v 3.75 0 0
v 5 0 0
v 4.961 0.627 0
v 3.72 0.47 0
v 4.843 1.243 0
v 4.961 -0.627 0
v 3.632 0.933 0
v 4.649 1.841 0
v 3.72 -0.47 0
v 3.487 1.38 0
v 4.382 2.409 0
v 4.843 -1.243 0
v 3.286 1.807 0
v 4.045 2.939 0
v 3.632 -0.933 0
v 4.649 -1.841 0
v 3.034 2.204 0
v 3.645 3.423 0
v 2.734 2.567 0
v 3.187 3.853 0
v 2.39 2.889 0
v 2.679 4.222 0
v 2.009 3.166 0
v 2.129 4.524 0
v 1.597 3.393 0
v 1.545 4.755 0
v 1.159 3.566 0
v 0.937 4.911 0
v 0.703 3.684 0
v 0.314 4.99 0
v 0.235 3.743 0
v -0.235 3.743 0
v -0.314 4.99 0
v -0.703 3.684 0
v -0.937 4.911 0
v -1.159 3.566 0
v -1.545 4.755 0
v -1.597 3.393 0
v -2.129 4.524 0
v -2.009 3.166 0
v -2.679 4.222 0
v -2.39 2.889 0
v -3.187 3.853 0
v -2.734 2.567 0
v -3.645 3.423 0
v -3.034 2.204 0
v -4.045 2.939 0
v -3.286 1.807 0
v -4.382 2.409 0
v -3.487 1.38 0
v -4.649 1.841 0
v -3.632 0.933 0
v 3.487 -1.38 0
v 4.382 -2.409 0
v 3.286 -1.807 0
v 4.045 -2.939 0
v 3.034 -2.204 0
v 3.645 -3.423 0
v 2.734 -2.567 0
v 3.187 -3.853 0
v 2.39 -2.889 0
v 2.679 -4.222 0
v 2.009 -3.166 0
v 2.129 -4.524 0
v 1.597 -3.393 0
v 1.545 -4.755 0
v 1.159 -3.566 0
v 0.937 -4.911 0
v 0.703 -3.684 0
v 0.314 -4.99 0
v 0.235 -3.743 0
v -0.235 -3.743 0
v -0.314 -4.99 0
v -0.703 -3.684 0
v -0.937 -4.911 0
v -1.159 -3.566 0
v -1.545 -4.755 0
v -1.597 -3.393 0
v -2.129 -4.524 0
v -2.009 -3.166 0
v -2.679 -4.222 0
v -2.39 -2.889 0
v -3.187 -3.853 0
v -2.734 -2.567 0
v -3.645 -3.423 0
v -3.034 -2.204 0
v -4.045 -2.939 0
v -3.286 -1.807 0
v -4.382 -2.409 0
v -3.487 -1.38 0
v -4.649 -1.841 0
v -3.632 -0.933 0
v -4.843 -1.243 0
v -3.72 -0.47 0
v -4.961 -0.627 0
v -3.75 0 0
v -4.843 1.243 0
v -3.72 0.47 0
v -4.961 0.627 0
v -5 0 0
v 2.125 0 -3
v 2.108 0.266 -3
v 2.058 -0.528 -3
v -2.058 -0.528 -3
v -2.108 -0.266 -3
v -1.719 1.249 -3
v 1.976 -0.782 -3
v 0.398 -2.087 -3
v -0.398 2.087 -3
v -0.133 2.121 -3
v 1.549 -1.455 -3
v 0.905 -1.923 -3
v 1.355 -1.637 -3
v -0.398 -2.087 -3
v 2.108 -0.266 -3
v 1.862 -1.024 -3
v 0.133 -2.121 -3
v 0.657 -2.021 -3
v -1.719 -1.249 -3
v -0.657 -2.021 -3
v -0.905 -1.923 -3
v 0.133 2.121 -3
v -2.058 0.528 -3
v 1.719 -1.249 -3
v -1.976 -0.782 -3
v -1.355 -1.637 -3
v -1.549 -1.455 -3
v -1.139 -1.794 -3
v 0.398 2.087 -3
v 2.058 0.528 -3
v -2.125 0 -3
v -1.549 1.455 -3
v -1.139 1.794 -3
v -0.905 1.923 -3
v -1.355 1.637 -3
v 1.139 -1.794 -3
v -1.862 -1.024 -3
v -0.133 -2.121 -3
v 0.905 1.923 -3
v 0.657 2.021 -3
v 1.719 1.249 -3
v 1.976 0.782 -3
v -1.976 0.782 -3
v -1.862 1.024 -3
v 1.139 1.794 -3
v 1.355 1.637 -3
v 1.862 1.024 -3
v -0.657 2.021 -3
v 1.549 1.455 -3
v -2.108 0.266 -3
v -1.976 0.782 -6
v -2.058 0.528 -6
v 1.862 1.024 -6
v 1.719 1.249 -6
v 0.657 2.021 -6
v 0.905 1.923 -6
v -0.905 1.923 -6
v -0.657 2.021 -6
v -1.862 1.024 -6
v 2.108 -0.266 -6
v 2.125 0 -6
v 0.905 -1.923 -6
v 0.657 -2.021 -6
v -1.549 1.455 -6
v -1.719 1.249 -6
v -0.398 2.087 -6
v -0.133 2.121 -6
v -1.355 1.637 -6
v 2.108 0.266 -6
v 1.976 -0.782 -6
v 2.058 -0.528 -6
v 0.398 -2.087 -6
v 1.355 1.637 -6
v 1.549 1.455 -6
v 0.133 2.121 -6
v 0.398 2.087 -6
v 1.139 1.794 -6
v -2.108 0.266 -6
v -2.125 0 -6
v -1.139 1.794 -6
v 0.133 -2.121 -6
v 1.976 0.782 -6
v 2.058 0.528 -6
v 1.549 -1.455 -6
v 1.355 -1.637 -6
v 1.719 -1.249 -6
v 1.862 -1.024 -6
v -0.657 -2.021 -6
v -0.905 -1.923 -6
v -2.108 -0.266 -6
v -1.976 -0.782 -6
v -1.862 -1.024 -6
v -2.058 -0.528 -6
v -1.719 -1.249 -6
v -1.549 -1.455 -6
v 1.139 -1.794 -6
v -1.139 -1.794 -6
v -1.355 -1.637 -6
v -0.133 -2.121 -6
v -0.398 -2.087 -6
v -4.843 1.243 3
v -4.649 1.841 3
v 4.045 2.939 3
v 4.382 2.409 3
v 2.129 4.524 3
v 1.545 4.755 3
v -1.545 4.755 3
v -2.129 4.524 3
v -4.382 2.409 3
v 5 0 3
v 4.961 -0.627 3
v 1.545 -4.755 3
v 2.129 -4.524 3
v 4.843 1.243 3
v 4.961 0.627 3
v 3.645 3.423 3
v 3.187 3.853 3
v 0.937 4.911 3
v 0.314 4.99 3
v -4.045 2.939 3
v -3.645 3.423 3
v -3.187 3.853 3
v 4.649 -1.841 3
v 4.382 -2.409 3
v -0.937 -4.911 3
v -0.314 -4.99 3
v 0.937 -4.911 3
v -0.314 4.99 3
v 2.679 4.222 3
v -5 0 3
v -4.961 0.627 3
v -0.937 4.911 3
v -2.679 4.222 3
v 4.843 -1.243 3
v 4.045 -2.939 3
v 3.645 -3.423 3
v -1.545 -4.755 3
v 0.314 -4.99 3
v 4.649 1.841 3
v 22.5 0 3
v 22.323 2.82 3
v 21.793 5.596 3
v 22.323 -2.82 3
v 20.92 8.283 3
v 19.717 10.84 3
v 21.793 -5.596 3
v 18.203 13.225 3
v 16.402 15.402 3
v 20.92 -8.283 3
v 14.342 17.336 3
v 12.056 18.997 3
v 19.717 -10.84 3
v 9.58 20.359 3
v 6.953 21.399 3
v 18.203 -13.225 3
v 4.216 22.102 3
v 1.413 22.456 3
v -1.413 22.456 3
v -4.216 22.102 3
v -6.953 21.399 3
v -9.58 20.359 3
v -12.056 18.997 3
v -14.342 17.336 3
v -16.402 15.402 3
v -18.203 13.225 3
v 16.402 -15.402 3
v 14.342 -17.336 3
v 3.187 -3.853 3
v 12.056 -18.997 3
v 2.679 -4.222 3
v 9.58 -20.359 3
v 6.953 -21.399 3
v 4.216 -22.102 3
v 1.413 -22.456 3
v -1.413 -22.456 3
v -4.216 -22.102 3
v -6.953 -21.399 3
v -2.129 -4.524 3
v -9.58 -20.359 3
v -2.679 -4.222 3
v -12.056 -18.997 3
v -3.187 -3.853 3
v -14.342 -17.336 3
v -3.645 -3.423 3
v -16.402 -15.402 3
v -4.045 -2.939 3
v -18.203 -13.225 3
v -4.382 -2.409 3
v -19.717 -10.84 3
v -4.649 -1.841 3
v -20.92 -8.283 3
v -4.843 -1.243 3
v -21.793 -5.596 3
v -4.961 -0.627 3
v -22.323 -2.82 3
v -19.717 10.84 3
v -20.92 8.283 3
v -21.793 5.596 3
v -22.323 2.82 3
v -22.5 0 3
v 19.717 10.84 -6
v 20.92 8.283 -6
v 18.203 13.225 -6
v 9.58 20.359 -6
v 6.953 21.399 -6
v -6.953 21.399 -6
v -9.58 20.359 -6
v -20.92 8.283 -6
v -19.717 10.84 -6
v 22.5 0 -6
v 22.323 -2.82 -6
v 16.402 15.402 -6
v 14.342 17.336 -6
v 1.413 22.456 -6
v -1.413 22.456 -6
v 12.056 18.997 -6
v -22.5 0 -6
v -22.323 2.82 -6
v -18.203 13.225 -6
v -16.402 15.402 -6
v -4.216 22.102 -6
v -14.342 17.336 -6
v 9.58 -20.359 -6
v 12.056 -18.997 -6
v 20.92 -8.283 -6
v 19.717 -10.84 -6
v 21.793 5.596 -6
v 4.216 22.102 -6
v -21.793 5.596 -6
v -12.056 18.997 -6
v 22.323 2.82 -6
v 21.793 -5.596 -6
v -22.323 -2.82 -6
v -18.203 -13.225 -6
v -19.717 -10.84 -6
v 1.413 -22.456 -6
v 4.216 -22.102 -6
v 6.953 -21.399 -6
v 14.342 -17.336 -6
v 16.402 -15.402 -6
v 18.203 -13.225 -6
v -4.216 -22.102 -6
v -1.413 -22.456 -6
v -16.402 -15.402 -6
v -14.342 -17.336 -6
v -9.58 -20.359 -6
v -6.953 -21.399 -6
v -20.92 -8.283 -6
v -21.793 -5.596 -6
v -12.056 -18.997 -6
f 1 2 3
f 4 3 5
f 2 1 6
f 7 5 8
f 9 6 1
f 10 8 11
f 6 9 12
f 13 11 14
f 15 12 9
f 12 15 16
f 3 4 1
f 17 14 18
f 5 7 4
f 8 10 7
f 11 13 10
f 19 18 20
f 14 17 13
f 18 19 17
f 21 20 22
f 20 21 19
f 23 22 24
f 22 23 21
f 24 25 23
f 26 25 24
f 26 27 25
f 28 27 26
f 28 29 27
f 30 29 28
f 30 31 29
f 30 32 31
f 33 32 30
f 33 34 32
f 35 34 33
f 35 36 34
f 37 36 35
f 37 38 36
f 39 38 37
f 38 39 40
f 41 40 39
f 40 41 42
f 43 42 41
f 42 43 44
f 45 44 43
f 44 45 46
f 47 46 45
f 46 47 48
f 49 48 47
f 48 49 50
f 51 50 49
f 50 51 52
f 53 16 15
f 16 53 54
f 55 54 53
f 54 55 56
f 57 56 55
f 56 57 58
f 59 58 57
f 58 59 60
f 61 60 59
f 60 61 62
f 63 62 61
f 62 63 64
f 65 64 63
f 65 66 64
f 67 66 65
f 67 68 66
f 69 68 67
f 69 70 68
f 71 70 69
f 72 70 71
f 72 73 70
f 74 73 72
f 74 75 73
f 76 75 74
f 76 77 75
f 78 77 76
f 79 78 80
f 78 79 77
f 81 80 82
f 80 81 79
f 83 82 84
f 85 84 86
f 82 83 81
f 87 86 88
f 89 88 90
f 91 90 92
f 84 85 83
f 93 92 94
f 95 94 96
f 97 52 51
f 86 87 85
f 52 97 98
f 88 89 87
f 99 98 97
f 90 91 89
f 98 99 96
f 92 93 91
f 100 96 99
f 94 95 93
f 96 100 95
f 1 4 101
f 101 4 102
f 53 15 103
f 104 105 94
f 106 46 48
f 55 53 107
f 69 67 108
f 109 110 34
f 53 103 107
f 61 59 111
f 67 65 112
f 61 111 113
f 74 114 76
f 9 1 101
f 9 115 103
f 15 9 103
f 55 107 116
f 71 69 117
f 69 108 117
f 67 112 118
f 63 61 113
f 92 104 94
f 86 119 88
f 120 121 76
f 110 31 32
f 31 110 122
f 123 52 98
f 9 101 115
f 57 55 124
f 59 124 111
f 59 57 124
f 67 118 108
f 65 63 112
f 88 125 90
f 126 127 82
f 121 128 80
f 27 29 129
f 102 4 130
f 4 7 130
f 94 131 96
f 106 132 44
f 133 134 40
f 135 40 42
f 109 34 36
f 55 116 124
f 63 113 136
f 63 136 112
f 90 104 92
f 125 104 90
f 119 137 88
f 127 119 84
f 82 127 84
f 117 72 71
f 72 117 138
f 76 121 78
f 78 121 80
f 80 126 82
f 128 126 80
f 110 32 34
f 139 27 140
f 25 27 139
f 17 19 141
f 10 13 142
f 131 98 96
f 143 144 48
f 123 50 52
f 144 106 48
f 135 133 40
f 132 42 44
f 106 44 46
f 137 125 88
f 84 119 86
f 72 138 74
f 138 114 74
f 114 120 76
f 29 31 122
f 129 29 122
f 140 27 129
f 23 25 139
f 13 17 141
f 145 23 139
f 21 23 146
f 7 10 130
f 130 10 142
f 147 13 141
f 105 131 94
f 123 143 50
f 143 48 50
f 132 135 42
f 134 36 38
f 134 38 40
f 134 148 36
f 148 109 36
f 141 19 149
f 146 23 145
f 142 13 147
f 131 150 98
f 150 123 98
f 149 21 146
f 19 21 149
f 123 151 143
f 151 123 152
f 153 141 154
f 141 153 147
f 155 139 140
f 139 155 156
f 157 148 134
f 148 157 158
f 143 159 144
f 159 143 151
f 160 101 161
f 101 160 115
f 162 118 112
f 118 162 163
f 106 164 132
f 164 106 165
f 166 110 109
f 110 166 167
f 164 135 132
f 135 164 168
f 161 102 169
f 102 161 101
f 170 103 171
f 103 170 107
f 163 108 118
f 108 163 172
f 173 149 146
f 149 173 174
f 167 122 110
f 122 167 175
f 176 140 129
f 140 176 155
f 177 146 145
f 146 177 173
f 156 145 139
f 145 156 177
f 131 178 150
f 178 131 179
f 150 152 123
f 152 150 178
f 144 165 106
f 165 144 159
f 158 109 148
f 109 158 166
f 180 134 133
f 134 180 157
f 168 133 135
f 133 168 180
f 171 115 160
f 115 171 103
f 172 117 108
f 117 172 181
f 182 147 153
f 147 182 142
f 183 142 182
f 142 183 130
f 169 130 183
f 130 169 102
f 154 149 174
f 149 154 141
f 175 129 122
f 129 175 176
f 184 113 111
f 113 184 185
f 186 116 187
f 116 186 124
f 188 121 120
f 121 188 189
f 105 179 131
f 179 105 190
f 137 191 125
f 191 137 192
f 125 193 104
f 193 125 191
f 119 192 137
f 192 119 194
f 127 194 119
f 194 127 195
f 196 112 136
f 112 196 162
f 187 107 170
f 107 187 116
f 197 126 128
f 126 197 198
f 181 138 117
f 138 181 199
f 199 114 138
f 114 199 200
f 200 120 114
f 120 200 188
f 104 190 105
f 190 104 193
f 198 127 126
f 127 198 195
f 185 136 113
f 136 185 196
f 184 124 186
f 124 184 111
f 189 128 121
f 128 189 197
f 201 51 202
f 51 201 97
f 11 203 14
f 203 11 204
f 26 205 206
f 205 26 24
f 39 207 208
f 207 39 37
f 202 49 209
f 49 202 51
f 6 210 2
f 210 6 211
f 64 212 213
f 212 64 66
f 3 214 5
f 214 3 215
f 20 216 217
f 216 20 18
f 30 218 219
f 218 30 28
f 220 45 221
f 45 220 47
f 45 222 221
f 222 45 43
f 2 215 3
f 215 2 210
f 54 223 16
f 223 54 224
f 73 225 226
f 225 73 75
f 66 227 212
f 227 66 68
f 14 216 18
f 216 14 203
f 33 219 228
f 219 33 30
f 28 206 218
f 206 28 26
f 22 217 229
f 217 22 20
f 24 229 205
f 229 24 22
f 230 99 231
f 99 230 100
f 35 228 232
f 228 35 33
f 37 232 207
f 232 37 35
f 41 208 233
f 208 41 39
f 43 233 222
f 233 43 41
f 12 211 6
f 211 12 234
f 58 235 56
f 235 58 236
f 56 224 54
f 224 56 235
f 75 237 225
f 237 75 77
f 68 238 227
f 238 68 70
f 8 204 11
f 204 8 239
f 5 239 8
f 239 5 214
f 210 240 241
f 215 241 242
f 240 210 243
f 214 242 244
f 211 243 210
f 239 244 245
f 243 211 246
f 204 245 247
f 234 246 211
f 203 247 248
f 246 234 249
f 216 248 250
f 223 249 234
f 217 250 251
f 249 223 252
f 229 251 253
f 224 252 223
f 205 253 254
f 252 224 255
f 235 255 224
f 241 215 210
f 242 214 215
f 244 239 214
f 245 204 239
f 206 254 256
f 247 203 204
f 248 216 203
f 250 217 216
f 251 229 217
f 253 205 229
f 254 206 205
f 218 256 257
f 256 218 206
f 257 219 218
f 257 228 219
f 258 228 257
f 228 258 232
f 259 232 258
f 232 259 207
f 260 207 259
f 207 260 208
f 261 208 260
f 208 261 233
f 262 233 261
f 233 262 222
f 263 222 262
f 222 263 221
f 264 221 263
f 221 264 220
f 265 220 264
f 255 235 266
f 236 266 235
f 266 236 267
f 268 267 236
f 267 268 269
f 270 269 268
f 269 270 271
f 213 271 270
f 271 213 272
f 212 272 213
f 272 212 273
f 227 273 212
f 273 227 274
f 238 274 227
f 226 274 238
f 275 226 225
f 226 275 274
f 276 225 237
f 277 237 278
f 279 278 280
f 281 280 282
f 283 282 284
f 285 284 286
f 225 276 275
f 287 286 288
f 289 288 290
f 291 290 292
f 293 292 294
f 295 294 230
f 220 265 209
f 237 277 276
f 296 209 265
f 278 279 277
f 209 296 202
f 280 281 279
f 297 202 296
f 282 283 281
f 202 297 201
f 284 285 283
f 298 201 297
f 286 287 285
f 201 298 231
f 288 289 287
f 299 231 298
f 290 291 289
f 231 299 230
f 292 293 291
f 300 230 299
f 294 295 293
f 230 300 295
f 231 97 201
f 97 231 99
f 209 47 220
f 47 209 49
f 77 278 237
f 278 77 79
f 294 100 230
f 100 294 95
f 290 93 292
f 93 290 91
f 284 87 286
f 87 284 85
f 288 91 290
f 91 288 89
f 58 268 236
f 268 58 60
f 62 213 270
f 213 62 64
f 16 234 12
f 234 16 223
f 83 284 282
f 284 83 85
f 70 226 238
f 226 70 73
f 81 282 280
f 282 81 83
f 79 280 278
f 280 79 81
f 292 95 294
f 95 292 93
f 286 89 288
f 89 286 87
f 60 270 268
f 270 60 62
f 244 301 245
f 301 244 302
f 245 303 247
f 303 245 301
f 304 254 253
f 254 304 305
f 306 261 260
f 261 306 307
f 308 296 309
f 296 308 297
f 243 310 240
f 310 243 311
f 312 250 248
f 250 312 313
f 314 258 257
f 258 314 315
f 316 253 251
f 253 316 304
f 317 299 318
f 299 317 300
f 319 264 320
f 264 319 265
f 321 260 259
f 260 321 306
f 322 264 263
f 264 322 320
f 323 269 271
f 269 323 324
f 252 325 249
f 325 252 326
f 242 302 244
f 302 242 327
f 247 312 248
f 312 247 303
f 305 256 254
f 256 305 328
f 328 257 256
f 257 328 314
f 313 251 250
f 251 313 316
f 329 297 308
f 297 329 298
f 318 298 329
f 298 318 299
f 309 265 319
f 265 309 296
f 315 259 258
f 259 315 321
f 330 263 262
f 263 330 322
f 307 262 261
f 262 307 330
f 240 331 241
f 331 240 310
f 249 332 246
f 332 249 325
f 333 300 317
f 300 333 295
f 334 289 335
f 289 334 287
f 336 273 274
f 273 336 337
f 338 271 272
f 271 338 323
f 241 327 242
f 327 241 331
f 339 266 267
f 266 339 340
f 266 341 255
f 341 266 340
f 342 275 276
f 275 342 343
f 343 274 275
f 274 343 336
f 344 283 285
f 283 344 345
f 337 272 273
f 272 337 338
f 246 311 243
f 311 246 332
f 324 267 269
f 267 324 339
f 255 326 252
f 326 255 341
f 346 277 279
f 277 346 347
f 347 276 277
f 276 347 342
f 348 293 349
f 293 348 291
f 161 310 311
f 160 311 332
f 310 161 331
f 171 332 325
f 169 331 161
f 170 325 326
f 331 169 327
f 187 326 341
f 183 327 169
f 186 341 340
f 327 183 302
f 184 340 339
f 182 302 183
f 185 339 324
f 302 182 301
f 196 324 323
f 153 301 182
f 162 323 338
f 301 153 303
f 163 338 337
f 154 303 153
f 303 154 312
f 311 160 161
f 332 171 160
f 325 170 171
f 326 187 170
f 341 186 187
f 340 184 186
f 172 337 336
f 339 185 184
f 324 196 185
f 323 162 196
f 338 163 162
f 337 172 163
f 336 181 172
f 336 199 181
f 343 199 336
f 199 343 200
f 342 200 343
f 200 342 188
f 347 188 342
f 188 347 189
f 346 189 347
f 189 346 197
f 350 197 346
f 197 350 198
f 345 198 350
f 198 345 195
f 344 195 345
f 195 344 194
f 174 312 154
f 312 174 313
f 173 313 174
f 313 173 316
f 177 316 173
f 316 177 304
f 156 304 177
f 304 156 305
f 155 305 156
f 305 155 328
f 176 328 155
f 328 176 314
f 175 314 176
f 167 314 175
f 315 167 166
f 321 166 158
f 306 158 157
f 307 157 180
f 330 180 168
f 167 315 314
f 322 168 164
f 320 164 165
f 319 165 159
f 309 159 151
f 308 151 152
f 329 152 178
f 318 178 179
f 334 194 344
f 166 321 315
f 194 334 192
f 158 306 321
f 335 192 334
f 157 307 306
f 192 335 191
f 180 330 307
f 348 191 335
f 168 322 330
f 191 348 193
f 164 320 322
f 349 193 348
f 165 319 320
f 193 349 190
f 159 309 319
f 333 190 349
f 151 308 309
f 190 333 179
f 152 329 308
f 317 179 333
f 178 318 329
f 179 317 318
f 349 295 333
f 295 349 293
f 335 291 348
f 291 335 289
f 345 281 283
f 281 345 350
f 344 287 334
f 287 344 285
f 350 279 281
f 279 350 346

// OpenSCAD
$fn = 50;

difference() {
	union() {
		translate(v = [0, 0, -6.0]) {
			cylinder(h = 9, r = 22.5);
		}
	}
	union() {
		translate(v = [0, 0, 0]) {
			rotate(a = [0, 0, 0]) {
				difference() {
					union() {
						translate(v = [0, 0, -9.0]) {
							cylinder(h = 9, r = 2.0);
						}
						translate(v = [0, 0, -3]) {
							cylinder(h = 3, r1 = 2.125, r2 = 3.75);
						}
						translate(v = [0, 0, -9.0]) {
							cylinder(h = 9, r = 2.125);
						}
						translate(v = [0, 0, -9.0]) {
							cylinder(h = 9, r = 2.0);
						}
					}
					union();
				}
			}
		}
		#cylinder(h = 3, r = 5.0);
	}
}
